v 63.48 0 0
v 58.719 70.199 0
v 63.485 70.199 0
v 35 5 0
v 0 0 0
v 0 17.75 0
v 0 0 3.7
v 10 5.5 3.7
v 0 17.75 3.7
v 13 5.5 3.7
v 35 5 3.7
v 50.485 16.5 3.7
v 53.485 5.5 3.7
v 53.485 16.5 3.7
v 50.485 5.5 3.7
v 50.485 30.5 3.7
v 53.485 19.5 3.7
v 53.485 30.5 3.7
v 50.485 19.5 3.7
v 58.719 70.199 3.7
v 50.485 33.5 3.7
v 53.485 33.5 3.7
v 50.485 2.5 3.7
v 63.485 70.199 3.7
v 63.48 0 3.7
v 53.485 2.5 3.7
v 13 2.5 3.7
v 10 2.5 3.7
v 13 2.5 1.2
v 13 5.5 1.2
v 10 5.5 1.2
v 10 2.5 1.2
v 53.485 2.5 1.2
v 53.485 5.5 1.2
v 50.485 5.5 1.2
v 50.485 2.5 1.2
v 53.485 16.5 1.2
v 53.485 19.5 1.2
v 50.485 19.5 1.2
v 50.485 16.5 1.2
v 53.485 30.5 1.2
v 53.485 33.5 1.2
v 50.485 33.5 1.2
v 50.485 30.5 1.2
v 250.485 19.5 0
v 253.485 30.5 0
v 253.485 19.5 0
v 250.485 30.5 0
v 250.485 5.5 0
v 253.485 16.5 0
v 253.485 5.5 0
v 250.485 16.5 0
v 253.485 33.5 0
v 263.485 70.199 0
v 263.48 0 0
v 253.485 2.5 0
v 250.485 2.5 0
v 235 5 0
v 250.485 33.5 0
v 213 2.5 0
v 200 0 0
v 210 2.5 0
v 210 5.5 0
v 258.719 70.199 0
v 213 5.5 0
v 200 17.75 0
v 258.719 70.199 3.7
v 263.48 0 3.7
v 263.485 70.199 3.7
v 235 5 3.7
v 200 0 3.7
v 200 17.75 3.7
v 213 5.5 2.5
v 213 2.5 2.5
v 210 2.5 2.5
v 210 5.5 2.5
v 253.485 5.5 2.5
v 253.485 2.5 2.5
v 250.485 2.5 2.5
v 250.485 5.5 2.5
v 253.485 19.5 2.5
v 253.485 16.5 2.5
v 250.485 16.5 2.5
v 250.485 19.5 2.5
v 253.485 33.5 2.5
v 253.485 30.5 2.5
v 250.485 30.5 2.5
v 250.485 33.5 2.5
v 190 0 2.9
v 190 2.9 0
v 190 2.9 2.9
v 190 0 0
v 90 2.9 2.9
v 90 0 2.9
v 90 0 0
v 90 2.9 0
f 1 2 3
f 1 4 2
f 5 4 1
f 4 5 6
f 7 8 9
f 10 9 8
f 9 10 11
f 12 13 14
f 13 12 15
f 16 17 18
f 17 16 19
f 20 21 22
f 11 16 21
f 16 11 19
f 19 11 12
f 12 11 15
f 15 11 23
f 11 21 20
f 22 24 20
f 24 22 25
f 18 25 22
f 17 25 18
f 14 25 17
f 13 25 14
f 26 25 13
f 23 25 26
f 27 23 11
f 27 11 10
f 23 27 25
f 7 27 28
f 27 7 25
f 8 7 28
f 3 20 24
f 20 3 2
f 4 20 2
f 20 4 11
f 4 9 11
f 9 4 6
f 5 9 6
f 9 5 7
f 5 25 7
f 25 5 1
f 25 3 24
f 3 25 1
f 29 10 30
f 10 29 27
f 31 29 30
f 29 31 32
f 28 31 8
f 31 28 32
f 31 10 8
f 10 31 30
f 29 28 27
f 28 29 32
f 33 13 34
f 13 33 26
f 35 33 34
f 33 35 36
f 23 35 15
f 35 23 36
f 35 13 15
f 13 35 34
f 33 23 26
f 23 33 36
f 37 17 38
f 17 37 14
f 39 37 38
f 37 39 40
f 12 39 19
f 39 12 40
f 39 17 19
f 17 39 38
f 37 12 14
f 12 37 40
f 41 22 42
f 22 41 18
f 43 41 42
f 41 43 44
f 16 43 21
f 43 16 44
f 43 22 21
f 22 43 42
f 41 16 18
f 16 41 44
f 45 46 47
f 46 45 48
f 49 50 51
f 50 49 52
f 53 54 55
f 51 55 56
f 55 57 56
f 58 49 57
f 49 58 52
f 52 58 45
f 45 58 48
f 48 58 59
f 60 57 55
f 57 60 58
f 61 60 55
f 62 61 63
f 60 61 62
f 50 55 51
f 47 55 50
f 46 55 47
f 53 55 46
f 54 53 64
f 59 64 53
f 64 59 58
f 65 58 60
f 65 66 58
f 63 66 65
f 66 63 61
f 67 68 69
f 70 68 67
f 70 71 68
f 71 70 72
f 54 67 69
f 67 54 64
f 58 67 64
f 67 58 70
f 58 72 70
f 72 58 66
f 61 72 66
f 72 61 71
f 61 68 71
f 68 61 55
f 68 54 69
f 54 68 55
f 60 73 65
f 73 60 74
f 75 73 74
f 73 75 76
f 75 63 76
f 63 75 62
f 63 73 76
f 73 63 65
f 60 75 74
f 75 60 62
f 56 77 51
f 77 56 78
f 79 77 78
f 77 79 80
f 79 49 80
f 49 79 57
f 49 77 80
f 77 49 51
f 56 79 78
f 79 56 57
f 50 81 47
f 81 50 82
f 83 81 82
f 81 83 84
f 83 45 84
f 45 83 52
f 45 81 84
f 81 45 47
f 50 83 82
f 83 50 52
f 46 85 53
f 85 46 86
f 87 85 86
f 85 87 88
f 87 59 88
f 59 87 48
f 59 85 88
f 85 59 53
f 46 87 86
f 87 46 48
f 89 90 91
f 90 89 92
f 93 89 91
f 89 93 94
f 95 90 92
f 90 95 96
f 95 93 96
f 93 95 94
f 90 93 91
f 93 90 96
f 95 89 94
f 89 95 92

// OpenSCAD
points = [
        [0, 0],
        [0, 17.75],
        [35, 5],
        [58.719, 70.199],
        [63.485, 70.199],
        [63.48, 0]
];
paths = [[0, 1, 2, 3, 4, 5]];


difference() {
    linear_extrude(3.7) {
        polygon(points, paths);
    }
    translate([10, 2.5, 1.2]) cube([3, 3, 5]);
    translate([50.485, 2.5, 1.2]) cube([3, 3, 5]);
    translate([50.485, 16.5, 1.2]) cube([3, 3, 5]);
    translate([50.485, 30.5, 1.2]) cube([3, 3, 5]);
}

translate([90, 0, 0]) {
    cube([100, 2.9, 2.9]);
}

translate([200, 0, 0]) {
    difference() {
        linear_extrude(3.7) {
            polygon(points, paths);
        }
        translate([10, 2.5, 0]) cube([3, 3, 2.5]);
        translate([50.485, 2.5, 0]) cube([3, 3, 2.5]);
        translate([50.485, 16.5, 0]) cube([3, 3, 2.5]);
        translate([50.485, 30.5, 0]) cube([3, 3, 2.5]);
    }
}
